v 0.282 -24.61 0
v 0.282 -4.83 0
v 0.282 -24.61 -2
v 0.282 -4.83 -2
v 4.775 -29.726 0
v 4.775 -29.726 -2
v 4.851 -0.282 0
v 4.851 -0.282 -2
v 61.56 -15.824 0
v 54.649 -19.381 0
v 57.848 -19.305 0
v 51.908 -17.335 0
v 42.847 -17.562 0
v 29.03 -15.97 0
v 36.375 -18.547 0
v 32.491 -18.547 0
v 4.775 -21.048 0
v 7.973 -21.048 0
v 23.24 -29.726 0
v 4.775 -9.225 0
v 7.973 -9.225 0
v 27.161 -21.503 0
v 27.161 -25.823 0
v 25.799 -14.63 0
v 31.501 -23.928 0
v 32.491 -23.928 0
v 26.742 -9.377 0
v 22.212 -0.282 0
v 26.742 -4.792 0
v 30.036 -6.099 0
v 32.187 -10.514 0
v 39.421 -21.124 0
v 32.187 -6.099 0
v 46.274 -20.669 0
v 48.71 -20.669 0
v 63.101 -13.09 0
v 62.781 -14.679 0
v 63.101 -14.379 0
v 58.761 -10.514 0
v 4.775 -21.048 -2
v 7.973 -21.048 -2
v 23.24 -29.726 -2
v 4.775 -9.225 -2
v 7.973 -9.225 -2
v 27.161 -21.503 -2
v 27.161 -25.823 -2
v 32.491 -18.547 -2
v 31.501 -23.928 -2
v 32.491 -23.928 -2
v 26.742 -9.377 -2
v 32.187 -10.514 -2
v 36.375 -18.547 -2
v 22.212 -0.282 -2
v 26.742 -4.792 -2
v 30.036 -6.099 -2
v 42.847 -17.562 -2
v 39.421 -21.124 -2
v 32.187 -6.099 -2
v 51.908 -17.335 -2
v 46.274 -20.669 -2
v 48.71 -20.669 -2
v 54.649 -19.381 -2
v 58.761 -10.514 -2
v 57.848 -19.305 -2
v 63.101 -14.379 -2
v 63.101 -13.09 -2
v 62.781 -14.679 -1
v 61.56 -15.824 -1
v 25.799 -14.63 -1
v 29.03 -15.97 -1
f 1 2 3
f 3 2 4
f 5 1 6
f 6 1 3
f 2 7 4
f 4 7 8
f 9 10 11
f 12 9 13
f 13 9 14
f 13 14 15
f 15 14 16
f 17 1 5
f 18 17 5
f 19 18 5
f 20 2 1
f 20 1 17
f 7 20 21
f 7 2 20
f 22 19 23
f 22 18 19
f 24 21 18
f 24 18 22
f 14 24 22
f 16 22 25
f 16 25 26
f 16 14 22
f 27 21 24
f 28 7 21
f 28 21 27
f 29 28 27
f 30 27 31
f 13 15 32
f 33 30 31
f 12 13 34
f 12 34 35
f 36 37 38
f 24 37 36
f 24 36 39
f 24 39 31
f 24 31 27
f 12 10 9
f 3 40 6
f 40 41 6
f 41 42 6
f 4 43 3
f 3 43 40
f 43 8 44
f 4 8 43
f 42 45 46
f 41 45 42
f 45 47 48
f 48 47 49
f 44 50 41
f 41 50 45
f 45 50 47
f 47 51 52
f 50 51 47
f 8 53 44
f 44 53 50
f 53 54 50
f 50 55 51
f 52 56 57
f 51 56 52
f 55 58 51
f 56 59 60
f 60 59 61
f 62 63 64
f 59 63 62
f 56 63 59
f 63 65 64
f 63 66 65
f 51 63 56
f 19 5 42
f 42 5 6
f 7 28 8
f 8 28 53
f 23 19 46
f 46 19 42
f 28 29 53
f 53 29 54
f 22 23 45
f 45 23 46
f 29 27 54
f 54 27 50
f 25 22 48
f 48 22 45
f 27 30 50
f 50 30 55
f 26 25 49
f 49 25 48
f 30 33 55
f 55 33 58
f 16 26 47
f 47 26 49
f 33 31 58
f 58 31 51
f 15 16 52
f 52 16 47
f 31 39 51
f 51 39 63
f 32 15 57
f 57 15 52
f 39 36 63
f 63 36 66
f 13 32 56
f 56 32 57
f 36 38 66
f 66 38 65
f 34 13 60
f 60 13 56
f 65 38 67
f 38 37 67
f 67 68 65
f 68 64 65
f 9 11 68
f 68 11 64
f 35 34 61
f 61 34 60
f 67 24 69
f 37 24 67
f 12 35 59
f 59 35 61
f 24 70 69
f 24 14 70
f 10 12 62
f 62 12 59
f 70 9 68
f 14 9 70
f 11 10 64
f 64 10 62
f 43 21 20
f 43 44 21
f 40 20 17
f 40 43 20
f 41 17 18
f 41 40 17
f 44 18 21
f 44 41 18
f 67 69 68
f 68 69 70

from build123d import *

# Parameters (mm, degrees)
EXTRUDE002_DEPTH = 5
EXTRUDE001_DEPTH = 2
EXTRUDE_DEPTH    = 2


with BuildPart() as taladro_llave:
    # path4171 → Extrude002 (new body)
    with BuildSketch(Plane(origin=(6.373784, -15.136707, 0), x_dir=(0, 1, 0), z_dir=(0, 0, 1))):
        with BuildLine():
            add(Edge.make_bspline(
                [(-5.911478, 1.599036), (-5.911478, -1.599036)],
                knots=[0, 0, 11.33175, 11.33175], degree=1))
            add(Edge.make_bspline(
                [(-5.911478, -1.599036), (5.911478, -1.599036)],
                knots=[0, 0, 41.89236, 41.89236], degree=1))
            add(Edge.make_bspline(
                [(5.911478, -1.599036), (5.911478, 1.599036)],
                knots=[0, 0, 11.33175, 11.33175], degree=1))
            add(Edge.make_bspline(
                [(5.911478, 1.599036), (-5.911478, 1.599036)],
                knots=[0, 0, 41.89236, 41.89236], degree=1))
        make_face()
    extrude(amount=EXTRUDE002_DEPTH)


with BuildPart() as taladro_llave_1:
    # Extrude002 placement: moved
    add(taladro_llave.part.moved(Location((0, 0, -3))))


with BuildPart() as muesca:
    # path4175 → Extrude001 (new body)
    with BuildSketch(Plane(origin=(45.980416, -15.300068, 0), x_dir=(0, -1, 0), z_dir=(0, 0, -1))):
        with BuildLine():
            add(Edge.make_bspline(
                [(-0.66988, 20.181412), (-0.616291, -20.181412)],
                knots=[0, 0, 143.018006, 143.018006], degree=1))
            add(Edge.make_bspline(
                [(-0.616291, -20.181412), (0.509109, -18.969959)],
                knots=[0, 0, 5.858947, 5.858947], degree=1))
            add(Edge.make_bspline(
                [(0.509109, -18.969959), (0.66988, 16.950874)],
                knots=[0, 0, 127.279815, 127.279815], degree=1))
            add(Edge.make_bspline(
                [(0.66988, 16.950874), (-0.66988, 20.181412)],
                knots=[0, 0, 12.392123, 12.392123], degree=1))
        make_face()
    extrude(amount=EXTRUDE001_DEPTH)


with BuildPart() as muesca_1:
    # Extrude001 placement: moved
    add(muesca.part.moved(Location((0, 0, 1))))


with BuildPart() as llave_final:
    # path4167 → Extrude (new body)
    with BuildSketch(Plane(origin=(31.691849, -15.004078, 0), x_dir=(0, -1, 0), z_dir=(0, 0, -1))):
        with BuildLine():
            add(Edge.make_bspline(
                [(9.606149, 31.409626), (-10.174564, 31.409626)],
                knots=[0, 0, 70.08914, 70.08914], degree=1))
            add(Edge.make_bspline(
                [(-10.174564, 31.409626), (-14.721856, 26.840954)],
                knots=[0, 0, 22.840078, 22.840078], degree=1))
            add(Edge.make_bspline(
                [(-14.721856, 26.840954), (-14.721856, 9.479997)],
                knots=[0, 0, 61.5152, 61.5152], degree=1))
            add(Edge.make_bspline(
                [(-14.721856, 9.479997), (-10.212458, 4.949393)],
                knots=[0, 0, 22.649752, 22.649752], degree=1))
            add(Edge.make_bspline(
                [(-10.212458, 4.949393), (-5.627273, 4.949393)],
                knots=[0, 0, 16.24672, 16.24672], degree=1))
            add(Edge.make_bspline(
                [(-5.627273, 4.949393), (-8.905112, 1.656139)],
                knots=[0, 0, 16.463895, 16.463895], degree=1))
            add(Edge.make_bspline(
                [(-8.905112, 1.656139), (-8.905112, -0.494942)],
                knots=[0, 0, 7.62194, 7.62194], degree=1))
            add(Edge.make_bspline(
                [(-8.905112, -0.494942), (-4.490451, -0.494942)],
                knots=[0, 0, 15.6425, 15.6425], degree=1))
            add(Edge.make_bspline(
                [(-4.490451, -0.494942), (-4.490451, -27.06939)],
                knots=[0, 0, 94.16143, 94.16143], degree=1))
            add(Edge.make_bspline(
                [(-4.490451, -27.06939), (-1.913652, -31.409626)],
                knots=[0, 0, 17.884943, 17.884943], degree=1))
            add(Edge.make_bspline(
                [(-1.913652, -31.409626), (-0.625254, -31.409626)],
                knots=[0, 0, 4.56519, 4.56519], degree=1))
            add(Edge.make_bspline(
                [(-0.625254, -31.409626), (4.300981, -26.155653)],
                knots=[0, 0, 25.519687, 25.519687], degree=1))
            add(Edge.make_bspline(
                [(4.300981, -26.155653), (4.376766, -22.957582)],
                knots=[0, 0, 11.334931, 11.334931], degree=1))
            add(Edge.make_bspline(
                [(4.376766, -22.957582), (2.330485, -20.21638)],
                knots=[0, 0, 12.120727, 12.120727], degree=1))
            add(Edge.make_bspline(
                [(2.330485, -20.21638), (5.665167, -17.018305)],
                knots=[0, 0, 16.371375, 16.371375], degree=1))
            add(Edge.make_bspline(
                [(5.665167, -17.018305), (5.665167, -14.581683)],
                knots=[0, 0, 8.6337, 8.6337], degree=1))
            add(Edge.make_bspline(
                [(5.665167, -14.581683), (2.557849, -11.155178)],
                knots=[0, 0, 16.389992, 16.389992], degree=1))
            add(Edge.make_bspline(
                [(2.557849, -11.155178), (6.119891, -7.72867)],
                knots=[0, 0, 17.513081, 17.513081], degree=1))
            add(Edge.make_bspline(
                [(6.119891, -7.72867), (3.543095, -4.682891)],
                knots=[0, 0, 14.136262, 14.136262], degree=1))
            add(Edge.make_bspline(
                [(3.543095, -4.682891), (3.543095, -0.799519)],
                knots=[0, 0, 13.75998, 13.75998], degree=1))
            add(Edge.make_bspline(
                [(3.543095, -0.799519), (8.92406, -0.799519)],
                knots=[0, 0, 19.06641, 19.06641], degree=1))
            add(Edge.make_bspline(
                [(8.92406, -0.799519), (8.92406, 0.190362)],
                knots=[0, 0, 3.50745, 3.50745], degree=1))
            add(Edge.make_bspline(
                [(8.92406, 0.190362), (6.498837, 4.530598)],
                knots=[0, 0, 17.616815, 17.616815], degree=1))
            add(Edge.make_bspline(
                [(6.498837, 4.530598), (10.818765, 4.530598)],
                knots=[0, 0, 15.30683, 15.30683], degree=1))
            add(Edge.make_bspline(
                [(10.818765, 4.530598), (14.721856, 8.452045)],
                knots=[0, 0, 19.604406, 19.604406], degree=1))
            add(Edge.make_bspline(
                [(14.721856, 8.452045), (14.721856, 26.9171)],
                knots=[0, 0, 65.42736, 65.42736], degree=1))
            add(Edge.make_bspline(
                [(14.721856, 26.9171), (9.606149, 31.409626)],
                knots=[0, 0, 24.123975, 24.123975], degree=1))
        make_face()
    extrude(amount=EXTRUDE_DEPTH)

    # Cut: cut muesca
    add(muesca_1.part, mode=Mode.SUBTRACT)

    # Cut001: cut taladro-llave
    add(taladro_llave_1.part, mode=Mode.SUBTRACT)


solid = llave_final.part
